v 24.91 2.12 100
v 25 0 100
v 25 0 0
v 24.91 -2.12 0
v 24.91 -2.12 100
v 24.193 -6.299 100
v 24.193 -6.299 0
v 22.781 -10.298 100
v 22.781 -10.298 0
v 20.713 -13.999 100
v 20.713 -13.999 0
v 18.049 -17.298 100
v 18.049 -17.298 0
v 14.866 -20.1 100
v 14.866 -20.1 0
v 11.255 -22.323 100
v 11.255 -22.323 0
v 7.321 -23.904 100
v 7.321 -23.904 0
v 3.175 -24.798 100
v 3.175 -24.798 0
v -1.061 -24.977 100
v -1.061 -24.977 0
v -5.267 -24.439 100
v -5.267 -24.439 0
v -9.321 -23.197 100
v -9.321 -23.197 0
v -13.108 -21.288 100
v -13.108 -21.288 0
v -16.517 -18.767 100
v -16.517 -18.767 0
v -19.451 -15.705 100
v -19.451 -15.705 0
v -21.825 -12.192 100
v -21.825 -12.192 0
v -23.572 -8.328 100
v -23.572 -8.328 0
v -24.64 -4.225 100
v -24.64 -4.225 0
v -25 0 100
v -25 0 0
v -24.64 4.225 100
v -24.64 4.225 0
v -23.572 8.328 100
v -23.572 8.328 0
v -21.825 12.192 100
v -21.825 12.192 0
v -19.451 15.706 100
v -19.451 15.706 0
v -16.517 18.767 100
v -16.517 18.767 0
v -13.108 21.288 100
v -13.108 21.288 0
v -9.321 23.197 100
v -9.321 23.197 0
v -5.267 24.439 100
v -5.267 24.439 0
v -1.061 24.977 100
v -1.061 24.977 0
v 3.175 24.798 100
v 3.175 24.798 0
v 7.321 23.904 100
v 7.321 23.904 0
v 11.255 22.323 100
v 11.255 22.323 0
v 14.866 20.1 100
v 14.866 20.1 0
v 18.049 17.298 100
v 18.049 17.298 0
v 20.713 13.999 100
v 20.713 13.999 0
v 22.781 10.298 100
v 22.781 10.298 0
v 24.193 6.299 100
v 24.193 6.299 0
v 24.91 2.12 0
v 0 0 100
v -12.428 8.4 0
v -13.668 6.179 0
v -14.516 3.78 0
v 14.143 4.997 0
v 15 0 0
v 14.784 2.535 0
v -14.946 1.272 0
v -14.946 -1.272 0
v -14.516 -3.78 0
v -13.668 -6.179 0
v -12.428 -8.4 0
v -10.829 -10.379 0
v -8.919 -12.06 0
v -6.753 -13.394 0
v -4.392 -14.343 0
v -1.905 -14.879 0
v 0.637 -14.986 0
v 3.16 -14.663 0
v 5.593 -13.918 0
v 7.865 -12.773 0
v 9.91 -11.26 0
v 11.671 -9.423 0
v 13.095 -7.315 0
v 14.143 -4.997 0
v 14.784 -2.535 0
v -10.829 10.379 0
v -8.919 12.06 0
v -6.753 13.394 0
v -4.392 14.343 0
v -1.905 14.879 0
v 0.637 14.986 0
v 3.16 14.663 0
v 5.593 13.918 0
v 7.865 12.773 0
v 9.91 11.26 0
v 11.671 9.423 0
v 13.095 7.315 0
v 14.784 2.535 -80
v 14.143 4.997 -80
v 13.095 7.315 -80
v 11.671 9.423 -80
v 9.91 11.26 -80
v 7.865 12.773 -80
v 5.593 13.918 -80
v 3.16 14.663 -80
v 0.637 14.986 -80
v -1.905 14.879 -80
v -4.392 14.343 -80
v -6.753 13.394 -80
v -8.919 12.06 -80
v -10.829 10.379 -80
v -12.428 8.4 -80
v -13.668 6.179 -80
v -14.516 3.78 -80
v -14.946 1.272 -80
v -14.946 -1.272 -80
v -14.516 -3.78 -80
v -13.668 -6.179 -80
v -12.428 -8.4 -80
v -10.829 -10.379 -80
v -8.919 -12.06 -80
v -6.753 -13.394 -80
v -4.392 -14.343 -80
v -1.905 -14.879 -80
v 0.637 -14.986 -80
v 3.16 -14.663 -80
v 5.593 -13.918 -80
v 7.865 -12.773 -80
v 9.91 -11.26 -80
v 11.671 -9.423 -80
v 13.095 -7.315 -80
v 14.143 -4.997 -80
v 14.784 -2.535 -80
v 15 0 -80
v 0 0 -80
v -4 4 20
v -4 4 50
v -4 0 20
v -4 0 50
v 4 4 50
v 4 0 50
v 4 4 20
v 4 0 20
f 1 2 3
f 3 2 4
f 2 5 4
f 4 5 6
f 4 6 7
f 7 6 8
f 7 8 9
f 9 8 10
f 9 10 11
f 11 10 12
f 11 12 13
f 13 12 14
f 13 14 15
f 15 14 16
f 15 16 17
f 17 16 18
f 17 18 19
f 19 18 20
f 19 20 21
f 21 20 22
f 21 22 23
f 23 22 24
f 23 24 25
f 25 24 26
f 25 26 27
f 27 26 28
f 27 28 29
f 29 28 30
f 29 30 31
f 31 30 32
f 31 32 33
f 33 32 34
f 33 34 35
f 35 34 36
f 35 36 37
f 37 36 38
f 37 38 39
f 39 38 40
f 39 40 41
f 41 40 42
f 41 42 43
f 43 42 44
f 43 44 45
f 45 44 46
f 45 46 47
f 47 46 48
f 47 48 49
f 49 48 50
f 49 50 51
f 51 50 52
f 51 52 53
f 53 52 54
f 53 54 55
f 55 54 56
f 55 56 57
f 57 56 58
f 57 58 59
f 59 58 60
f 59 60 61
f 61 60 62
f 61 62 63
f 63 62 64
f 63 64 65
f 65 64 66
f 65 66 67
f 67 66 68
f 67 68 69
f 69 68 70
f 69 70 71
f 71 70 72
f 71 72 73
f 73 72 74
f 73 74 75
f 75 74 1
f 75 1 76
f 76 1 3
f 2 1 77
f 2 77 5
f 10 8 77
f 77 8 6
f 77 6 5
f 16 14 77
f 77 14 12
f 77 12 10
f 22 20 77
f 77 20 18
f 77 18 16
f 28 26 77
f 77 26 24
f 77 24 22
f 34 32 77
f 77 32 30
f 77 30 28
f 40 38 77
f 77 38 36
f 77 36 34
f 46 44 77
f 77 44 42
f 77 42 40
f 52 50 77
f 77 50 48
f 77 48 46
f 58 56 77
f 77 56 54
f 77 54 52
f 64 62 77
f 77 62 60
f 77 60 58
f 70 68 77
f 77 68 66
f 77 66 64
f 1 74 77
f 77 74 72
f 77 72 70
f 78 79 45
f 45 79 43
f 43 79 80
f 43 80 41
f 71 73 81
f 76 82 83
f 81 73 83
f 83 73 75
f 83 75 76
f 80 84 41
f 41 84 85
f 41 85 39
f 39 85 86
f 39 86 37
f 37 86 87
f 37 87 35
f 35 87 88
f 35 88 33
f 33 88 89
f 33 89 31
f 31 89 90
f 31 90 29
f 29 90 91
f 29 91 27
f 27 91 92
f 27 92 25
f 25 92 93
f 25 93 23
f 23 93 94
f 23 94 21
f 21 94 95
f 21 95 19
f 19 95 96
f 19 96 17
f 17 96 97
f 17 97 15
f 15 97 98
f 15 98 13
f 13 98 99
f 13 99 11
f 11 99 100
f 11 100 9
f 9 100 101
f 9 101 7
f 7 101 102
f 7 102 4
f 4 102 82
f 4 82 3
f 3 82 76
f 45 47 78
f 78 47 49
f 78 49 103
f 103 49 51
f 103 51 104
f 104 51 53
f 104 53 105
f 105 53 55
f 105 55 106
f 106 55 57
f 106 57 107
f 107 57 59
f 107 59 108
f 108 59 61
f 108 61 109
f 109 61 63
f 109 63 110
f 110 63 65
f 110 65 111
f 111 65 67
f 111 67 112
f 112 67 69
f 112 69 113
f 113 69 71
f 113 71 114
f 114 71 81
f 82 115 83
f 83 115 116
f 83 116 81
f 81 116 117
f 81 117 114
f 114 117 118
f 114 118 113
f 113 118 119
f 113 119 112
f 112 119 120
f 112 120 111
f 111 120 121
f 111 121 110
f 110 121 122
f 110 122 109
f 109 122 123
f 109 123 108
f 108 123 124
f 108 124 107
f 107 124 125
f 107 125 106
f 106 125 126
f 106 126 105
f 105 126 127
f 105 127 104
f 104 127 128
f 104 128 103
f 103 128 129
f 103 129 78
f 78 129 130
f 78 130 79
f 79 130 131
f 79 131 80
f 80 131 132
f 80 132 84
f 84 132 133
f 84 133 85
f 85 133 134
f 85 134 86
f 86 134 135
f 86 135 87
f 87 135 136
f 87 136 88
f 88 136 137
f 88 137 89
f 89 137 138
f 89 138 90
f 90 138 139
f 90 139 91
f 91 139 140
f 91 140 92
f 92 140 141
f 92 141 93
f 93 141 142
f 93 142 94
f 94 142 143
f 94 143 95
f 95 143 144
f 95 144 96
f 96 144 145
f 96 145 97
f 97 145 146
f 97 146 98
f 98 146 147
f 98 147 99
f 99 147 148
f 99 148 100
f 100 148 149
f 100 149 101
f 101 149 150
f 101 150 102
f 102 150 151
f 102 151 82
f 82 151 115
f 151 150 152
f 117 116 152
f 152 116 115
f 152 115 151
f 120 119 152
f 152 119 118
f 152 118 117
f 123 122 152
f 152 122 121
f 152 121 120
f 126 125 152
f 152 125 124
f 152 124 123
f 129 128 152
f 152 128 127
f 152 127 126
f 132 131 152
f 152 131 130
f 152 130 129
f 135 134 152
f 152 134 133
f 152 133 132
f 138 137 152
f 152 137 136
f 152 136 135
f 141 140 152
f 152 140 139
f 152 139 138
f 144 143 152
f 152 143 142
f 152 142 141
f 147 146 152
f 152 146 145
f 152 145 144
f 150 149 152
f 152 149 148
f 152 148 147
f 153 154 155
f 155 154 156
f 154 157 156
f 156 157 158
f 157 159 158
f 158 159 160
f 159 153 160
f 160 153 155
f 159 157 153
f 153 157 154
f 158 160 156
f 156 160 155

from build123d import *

# Parameters (mm, degrees)
SKETCH_1_R          = 25
EXTRUDE_1_DEPTH     = 100
SKETCH_2_R          = 15
EXTRUDE_2_DEPTH     = 80
SKETCH_3_W          = 8
SKETCH_3_H          = 30
CUT_EXTRUDE_1_DEPTH = 4


with BuildPart() as part:
    # 草图1 → 凸台-拉伸1 (new body)
    with BuildSketch(Plane.XY):
        Circle(SKETCH_1_R)
    extrude(amount=EXTRUDE_1_DEPTH)

    # 草图2 → 凸台-拉伸2 (add)
    with BuildSketch(Plane.XY):
        Circle(SKETCH_2_R)
    extrude(amount=-EXTRUDE_2_DEPTH)

    # 草图3 → 切除-拉伸1 (cut)
    with BuildSketch(Plane(origin=(0, 0, 0), x_dir=(1, 0, 0), z_dir=(0, 1, 0))):
        with Locations((0, -35)):
            Rectangle(SKETCH_3_W, SKETCH_3_H)
    extrude(amount=CUT_EXTRUDE_1_DEPTH, mode=Mode.SUBTRACT)


solid = part.part
